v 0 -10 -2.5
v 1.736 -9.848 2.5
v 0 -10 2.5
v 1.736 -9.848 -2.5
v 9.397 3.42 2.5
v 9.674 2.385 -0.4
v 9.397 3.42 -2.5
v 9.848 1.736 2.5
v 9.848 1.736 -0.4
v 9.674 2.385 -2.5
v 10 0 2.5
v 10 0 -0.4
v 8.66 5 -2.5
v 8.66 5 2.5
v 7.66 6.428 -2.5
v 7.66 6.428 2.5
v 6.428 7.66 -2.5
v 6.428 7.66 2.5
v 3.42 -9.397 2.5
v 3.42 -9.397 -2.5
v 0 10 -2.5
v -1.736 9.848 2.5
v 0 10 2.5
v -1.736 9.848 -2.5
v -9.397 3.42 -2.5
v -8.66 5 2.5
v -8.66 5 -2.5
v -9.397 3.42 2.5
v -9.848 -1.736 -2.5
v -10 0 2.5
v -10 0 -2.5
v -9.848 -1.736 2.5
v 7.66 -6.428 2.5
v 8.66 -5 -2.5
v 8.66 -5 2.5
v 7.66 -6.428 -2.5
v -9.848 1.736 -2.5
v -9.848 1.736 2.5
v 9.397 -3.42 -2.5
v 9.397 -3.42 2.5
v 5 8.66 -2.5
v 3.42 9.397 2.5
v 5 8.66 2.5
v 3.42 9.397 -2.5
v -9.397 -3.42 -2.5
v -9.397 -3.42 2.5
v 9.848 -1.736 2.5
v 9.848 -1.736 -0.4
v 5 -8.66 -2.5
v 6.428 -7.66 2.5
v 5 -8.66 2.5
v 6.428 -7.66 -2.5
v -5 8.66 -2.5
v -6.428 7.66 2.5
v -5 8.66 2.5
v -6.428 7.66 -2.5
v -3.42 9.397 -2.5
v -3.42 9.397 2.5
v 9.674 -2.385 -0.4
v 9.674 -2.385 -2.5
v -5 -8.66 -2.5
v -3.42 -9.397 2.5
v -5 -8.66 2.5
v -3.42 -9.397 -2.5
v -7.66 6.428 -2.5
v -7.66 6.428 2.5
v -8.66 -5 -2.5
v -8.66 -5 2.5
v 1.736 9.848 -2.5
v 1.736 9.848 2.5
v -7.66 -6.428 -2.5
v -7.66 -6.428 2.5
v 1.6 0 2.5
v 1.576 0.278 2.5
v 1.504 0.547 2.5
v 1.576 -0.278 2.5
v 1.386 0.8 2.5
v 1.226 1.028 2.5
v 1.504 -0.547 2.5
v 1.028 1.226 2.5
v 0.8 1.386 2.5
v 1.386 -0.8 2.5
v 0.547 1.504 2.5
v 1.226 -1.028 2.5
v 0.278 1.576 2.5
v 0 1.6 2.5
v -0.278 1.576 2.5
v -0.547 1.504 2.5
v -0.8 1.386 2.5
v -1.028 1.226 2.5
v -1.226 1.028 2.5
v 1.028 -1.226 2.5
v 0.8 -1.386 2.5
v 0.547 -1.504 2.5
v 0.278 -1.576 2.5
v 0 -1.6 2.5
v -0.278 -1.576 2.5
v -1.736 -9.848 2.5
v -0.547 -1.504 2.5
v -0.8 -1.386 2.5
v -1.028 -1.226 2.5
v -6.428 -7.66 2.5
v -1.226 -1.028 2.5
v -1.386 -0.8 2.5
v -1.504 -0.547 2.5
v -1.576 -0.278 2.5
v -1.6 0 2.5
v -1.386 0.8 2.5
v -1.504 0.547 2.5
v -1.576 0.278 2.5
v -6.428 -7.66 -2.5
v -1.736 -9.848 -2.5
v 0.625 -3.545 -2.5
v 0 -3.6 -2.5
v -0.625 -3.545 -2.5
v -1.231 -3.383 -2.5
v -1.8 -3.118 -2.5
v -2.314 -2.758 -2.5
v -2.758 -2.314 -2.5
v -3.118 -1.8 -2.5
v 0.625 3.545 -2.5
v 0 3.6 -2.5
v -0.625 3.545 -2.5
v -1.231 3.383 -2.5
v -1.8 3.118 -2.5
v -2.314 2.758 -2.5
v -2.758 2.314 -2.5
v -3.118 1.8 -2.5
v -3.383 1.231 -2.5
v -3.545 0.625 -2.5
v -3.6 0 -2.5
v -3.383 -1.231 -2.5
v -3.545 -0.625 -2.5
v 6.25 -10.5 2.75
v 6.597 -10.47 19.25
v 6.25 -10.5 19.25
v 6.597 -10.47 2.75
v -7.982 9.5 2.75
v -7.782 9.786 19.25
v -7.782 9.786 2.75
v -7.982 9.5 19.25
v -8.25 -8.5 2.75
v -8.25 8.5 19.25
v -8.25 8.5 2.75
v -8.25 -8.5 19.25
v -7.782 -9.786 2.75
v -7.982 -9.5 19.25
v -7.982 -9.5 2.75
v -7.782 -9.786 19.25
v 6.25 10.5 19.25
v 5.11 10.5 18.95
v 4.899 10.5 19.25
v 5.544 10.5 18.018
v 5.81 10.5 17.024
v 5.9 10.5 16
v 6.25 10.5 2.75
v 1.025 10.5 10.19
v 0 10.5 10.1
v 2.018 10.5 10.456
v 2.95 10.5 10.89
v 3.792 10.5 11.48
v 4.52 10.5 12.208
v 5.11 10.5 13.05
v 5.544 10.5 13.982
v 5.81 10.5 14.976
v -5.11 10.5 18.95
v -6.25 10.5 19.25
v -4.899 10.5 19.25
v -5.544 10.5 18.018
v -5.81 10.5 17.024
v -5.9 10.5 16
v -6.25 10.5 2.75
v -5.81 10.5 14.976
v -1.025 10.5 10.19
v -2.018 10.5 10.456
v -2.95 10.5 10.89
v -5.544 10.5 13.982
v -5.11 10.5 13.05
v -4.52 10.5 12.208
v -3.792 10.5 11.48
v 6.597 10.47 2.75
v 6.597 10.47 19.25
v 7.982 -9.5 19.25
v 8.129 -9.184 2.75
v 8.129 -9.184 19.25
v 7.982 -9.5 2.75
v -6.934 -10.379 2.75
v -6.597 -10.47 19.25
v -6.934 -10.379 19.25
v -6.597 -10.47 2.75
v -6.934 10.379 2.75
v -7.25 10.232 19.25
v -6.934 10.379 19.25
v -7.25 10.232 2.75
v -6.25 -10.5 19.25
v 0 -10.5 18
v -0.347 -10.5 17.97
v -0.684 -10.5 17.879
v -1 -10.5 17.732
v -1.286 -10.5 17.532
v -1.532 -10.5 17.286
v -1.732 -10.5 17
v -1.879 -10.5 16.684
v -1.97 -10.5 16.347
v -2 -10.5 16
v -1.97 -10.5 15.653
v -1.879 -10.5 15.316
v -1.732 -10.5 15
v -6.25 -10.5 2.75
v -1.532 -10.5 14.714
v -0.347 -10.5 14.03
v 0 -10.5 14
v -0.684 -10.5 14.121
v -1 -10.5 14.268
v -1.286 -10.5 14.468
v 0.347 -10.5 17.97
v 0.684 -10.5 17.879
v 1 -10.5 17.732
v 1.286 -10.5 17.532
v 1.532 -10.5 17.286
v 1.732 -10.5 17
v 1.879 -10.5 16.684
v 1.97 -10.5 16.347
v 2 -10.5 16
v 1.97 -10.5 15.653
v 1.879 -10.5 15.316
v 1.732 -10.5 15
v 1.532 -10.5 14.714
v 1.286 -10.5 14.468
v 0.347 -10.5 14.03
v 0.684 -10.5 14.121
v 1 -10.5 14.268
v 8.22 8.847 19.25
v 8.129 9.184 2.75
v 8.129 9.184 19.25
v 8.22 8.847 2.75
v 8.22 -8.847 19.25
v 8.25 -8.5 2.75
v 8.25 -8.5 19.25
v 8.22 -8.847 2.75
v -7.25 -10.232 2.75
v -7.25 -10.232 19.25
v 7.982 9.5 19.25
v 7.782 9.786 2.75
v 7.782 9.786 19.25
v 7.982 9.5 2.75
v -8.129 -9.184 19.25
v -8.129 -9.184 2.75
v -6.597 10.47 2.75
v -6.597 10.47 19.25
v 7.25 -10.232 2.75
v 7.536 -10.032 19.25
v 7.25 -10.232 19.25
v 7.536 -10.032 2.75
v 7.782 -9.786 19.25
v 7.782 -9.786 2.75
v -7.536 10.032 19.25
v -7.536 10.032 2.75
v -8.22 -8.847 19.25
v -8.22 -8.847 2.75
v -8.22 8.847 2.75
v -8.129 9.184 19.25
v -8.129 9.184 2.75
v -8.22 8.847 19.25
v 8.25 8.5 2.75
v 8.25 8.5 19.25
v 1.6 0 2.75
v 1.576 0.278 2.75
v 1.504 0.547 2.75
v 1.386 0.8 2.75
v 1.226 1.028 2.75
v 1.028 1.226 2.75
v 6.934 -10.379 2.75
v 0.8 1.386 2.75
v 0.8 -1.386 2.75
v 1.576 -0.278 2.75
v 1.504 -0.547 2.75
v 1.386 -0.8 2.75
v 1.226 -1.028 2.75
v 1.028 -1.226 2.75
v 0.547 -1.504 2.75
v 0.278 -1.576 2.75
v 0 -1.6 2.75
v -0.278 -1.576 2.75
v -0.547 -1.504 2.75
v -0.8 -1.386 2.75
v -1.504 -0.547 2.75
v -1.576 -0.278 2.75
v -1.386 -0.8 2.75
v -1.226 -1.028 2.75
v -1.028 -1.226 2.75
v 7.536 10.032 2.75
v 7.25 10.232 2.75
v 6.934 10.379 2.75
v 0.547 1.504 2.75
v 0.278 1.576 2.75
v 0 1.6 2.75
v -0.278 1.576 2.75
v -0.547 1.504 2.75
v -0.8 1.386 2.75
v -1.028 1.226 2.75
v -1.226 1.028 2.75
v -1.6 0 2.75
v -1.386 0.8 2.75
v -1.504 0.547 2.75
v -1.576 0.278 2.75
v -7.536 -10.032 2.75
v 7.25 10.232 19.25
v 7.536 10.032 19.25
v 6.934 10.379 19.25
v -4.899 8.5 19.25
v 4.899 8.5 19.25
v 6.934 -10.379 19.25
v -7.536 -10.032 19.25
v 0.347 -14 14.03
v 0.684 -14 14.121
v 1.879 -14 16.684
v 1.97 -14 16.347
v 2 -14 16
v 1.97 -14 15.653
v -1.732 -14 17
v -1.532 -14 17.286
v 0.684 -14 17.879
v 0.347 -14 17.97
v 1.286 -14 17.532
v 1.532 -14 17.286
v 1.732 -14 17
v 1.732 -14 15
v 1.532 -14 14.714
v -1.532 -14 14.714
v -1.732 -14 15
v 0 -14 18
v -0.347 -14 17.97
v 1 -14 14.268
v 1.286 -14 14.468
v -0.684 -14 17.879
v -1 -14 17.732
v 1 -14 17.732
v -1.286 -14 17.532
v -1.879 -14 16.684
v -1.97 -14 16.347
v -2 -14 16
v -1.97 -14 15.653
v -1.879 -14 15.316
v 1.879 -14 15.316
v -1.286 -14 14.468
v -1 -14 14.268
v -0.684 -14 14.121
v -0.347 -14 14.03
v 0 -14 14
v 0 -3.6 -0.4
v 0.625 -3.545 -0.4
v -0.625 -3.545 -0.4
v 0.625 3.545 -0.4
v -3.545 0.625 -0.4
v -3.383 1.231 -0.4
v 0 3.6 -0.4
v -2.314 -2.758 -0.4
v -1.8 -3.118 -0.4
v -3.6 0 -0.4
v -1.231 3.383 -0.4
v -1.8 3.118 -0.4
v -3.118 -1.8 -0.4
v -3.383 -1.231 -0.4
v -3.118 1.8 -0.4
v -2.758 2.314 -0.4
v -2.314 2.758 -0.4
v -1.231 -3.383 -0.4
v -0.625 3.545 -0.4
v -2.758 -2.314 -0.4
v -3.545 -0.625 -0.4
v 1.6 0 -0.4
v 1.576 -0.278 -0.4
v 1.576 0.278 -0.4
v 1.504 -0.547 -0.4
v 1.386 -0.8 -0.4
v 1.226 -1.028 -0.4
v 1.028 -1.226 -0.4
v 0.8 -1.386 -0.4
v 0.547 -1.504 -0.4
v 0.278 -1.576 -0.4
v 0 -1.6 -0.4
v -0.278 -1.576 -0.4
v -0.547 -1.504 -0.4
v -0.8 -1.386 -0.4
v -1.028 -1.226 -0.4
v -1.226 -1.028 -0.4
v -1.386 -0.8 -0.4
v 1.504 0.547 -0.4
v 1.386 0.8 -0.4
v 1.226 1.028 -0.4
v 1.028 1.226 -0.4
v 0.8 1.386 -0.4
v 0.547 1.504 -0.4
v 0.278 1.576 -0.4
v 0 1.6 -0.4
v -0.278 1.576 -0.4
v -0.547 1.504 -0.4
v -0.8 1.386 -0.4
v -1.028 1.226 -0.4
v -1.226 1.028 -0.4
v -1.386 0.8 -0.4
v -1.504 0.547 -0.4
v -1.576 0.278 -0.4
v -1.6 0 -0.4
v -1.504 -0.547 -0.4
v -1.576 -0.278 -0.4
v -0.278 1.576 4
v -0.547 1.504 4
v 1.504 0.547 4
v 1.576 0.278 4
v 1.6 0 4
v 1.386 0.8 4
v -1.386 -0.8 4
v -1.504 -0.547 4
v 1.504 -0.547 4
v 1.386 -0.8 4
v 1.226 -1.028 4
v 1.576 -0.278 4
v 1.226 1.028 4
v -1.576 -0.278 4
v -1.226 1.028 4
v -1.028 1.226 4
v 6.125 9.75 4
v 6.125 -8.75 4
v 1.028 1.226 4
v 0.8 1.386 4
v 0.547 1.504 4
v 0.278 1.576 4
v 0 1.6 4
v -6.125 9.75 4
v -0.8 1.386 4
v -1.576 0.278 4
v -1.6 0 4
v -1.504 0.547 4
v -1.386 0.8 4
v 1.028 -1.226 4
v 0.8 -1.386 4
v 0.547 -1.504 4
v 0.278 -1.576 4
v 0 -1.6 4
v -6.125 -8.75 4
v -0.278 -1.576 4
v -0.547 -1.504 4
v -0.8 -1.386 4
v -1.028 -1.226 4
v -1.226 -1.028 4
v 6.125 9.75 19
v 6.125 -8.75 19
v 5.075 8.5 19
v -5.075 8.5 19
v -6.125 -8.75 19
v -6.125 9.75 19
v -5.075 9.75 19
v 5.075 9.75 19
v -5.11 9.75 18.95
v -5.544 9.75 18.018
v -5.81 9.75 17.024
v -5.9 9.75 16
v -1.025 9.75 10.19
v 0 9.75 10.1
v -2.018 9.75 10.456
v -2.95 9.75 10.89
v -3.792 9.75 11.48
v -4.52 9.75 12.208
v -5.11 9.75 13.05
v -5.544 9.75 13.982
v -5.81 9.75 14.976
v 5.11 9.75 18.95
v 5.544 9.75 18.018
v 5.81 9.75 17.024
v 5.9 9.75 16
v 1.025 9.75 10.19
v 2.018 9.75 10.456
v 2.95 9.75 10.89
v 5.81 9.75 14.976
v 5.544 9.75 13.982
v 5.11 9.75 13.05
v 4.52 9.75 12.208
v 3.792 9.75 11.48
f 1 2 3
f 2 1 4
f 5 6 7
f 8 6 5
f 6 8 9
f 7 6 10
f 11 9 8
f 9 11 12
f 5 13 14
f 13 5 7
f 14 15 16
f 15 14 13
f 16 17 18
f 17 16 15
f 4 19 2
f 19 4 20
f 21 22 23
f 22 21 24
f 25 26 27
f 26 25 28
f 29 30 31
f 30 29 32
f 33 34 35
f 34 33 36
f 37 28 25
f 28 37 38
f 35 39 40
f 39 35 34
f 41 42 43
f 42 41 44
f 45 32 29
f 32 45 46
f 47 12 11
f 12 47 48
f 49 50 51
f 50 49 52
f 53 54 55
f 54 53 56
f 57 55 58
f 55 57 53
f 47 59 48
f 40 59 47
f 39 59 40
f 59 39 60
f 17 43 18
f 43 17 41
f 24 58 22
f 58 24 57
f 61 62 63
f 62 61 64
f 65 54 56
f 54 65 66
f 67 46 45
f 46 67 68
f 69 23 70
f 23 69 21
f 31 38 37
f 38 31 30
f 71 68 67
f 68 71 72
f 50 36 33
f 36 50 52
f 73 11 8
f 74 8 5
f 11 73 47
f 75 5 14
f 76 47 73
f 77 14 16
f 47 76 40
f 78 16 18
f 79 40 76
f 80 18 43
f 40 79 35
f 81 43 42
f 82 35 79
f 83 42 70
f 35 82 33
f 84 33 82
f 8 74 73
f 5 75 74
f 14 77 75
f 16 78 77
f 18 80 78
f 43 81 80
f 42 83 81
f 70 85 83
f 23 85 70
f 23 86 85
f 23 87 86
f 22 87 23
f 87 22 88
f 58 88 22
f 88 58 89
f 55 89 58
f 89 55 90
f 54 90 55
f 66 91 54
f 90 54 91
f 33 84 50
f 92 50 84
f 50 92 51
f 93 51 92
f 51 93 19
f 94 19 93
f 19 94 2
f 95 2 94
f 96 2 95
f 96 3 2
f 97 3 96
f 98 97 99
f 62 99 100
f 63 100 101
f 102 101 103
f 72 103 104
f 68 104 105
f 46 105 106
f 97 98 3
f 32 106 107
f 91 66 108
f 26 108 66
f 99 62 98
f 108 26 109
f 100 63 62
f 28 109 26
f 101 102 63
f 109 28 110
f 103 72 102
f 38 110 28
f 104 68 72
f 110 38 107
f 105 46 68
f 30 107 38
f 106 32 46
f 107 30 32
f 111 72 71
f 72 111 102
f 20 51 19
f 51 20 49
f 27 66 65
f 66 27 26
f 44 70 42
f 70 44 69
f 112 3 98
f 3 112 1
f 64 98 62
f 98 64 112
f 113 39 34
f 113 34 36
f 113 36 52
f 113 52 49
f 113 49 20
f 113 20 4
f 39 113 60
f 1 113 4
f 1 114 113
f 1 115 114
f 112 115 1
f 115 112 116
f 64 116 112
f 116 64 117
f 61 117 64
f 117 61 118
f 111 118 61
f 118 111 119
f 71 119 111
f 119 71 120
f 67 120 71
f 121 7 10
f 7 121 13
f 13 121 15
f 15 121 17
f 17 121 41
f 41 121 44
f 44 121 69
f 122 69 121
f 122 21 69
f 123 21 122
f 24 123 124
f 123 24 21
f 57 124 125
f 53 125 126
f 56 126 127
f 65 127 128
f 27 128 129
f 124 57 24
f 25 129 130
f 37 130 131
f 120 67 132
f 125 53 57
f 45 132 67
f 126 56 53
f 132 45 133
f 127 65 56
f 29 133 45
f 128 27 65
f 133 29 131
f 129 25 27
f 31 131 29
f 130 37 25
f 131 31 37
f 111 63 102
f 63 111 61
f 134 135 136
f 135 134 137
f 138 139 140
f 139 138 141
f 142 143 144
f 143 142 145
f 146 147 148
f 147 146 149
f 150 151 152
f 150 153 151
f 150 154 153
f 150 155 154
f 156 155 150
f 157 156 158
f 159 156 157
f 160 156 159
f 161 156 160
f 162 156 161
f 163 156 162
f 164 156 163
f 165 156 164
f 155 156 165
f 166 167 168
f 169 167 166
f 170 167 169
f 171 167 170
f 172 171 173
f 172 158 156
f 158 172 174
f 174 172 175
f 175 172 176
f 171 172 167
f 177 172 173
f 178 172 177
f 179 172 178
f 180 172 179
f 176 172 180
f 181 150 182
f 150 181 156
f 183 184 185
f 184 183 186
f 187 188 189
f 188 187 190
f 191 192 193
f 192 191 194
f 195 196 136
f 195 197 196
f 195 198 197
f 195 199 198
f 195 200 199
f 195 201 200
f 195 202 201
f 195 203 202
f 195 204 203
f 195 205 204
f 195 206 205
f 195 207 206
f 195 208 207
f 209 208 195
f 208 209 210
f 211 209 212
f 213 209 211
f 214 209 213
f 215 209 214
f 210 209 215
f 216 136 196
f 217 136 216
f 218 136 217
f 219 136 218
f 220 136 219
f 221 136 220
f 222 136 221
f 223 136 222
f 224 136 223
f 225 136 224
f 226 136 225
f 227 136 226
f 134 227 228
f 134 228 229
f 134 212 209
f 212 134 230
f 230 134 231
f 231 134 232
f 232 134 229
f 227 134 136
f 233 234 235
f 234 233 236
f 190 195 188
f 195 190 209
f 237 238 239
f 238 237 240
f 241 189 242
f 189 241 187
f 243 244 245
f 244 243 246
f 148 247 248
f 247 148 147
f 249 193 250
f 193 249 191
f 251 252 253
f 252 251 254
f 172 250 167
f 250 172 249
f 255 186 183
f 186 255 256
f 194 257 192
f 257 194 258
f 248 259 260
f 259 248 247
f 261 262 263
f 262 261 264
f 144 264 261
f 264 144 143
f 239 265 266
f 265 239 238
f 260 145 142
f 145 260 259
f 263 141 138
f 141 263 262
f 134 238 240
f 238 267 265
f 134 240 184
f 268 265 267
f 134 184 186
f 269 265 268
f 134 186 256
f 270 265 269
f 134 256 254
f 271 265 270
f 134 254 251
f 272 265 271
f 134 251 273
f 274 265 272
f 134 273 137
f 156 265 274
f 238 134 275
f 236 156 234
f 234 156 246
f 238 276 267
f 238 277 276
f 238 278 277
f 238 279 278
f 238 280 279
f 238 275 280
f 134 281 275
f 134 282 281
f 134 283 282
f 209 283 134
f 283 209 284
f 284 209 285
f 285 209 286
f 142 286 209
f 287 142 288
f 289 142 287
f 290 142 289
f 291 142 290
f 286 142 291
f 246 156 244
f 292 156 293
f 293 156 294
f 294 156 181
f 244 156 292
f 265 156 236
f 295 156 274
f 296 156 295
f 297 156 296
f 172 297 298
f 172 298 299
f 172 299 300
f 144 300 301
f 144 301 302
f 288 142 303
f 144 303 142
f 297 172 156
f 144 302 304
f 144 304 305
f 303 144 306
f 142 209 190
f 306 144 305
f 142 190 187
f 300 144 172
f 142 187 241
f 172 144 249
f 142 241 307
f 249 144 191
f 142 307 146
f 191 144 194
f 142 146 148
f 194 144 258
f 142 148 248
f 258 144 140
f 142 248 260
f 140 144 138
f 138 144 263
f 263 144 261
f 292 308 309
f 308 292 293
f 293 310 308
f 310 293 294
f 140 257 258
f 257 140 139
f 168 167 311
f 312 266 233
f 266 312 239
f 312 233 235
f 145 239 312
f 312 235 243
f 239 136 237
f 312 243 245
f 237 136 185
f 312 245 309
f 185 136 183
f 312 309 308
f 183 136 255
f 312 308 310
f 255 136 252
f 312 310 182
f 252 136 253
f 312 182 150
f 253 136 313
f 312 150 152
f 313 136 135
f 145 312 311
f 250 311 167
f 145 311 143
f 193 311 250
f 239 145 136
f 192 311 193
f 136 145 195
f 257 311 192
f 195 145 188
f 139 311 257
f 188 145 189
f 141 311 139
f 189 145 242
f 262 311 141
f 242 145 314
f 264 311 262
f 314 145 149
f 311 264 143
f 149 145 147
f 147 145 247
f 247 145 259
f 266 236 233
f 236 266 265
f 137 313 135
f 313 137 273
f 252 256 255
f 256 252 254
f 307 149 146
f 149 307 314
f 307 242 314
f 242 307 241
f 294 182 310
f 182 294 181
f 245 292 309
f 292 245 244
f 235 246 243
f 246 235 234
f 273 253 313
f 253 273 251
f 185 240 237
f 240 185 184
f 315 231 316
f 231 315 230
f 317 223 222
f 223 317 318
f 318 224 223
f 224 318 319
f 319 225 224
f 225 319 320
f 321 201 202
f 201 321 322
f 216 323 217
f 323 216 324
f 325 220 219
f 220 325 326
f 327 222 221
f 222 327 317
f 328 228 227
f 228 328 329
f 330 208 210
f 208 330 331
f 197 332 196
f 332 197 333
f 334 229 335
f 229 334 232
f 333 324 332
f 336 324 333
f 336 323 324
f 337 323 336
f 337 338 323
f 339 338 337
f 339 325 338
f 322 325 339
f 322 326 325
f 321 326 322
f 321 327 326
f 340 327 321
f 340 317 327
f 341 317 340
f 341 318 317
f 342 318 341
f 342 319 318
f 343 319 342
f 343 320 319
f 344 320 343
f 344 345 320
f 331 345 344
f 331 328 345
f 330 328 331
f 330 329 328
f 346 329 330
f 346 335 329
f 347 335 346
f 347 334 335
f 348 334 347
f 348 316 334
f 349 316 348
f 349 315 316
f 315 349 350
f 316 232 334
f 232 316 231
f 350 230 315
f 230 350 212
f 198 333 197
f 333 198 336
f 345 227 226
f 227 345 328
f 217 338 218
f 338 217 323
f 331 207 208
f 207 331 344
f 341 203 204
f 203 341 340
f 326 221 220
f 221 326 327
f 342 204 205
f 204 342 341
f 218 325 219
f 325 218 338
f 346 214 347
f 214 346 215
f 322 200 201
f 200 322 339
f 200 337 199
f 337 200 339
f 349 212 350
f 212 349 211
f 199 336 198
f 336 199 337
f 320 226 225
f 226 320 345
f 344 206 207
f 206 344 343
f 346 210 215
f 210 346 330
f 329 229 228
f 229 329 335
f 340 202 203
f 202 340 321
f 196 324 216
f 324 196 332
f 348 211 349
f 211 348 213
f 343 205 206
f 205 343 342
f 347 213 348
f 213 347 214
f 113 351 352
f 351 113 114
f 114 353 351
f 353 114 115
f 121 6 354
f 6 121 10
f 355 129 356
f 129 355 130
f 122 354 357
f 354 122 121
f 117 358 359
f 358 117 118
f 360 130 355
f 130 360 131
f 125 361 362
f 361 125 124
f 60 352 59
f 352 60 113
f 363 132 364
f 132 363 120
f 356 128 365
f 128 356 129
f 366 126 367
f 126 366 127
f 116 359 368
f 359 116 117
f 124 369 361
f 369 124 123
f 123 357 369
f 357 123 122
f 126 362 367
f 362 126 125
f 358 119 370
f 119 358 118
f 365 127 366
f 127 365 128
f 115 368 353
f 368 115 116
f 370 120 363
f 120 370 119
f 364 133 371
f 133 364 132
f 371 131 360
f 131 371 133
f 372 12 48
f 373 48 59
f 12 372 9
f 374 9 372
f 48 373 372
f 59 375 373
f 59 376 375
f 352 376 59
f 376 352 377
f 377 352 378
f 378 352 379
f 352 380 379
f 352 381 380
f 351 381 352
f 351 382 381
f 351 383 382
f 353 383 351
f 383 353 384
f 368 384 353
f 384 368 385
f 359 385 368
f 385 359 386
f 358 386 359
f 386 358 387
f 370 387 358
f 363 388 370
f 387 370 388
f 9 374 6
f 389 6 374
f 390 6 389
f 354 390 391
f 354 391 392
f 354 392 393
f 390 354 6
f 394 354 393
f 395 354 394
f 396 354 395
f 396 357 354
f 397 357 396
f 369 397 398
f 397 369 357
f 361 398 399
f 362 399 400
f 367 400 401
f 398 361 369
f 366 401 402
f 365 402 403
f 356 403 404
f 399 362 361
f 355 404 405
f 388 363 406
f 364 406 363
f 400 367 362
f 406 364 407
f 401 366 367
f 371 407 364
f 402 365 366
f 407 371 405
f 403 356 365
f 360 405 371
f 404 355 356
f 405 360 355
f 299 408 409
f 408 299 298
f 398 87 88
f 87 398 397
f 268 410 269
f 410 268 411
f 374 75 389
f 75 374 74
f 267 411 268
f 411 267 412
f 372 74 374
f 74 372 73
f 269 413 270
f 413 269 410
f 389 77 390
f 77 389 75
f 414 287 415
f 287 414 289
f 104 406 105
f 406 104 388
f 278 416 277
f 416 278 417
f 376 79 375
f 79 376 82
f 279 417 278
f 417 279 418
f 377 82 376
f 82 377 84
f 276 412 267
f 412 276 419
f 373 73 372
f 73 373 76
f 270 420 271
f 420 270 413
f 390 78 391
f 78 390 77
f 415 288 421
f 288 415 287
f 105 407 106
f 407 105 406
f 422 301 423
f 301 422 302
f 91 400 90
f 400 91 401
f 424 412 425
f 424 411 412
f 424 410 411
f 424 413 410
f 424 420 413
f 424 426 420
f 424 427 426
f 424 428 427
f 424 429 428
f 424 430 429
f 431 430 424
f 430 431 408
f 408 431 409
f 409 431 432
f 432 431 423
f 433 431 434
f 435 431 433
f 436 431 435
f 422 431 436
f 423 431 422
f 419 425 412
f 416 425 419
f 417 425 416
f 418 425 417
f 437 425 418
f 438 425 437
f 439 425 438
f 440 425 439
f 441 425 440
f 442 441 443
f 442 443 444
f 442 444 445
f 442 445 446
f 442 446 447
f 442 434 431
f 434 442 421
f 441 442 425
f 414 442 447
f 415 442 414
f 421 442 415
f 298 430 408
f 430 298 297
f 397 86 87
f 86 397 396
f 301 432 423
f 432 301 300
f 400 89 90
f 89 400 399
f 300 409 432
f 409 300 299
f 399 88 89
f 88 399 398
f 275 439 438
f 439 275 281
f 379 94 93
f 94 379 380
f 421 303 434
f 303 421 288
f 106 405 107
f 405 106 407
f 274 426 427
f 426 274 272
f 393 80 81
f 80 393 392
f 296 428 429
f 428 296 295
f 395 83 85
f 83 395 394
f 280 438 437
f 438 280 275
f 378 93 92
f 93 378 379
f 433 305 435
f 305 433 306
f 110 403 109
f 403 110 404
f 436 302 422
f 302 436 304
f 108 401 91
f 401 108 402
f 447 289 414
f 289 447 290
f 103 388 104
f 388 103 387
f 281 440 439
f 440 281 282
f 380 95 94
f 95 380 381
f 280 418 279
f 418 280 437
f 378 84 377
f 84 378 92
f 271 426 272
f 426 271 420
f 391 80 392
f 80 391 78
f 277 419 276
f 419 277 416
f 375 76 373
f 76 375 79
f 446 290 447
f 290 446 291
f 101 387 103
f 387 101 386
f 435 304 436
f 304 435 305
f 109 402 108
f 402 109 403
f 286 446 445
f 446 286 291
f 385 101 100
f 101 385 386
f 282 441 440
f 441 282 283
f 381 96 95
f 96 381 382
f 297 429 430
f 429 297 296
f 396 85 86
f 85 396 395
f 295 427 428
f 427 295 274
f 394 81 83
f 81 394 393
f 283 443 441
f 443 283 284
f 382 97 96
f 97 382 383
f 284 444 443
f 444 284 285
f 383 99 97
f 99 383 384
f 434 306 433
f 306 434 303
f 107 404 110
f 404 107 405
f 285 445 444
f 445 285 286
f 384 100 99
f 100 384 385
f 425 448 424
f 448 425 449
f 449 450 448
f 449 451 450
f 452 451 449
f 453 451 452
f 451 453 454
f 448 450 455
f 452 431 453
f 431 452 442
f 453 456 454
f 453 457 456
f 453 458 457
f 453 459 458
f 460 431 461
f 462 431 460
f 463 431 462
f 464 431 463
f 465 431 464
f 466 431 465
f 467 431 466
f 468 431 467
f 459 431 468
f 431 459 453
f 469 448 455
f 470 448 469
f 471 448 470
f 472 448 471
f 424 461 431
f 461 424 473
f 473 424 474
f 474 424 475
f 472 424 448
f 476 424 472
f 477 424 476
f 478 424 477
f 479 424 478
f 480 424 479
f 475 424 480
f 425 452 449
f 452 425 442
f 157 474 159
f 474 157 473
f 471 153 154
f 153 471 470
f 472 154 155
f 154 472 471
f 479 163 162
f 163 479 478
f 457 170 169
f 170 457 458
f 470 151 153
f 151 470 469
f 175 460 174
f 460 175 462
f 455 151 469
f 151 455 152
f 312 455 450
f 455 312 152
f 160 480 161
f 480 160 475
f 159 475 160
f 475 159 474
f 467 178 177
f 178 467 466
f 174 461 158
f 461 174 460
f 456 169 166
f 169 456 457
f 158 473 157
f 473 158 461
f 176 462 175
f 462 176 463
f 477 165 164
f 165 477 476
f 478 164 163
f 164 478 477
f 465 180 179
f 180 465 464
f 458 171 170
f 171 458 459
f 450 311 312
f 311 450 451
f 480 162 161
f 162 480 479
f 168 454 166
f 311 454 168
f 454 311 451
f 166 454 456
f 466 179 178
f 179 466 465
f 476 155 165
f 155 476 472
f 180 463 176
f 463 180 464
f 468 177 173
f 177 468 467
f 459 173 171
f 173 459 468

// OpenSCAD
// file: ../rnv1_params.scad
// RNV1 (Robotic Neural Vector 1) - Master Parametric Mechanical Specification
// Units: millimeters (mm)
// Coordinate Frame: +X Forward, +Y Left, +Z Up (Standing Neutral Pose, Floor = Z=0)

$fn = 36;

// --- FDM 3D Print Engineering Tolerances (0.4mm nozzle, PETG / PLA+) ---
WALL_T       = 2.0;    // Primary structural wall thickness (>= 1.6mm requirement)
RIB_T        = 1.8;    // Structural stiffening rib thickness
CLEARANCE    = 0.25;   // Standard FDM press/slip fit clearance
M2_PILOT_D   = 1.75;   // M2 self-tapping pilot hole diameter
M2_CLEAR_D   = 2.3;    // M2 through clearance hole diameter
PIVOT_BOSS_D = 4.0;    // Dual-shear opposing coaxial pivot pin diameter

// --- MG90S Metal-Gear Micro Servo Envelope (TowerPro/Generic standard) ---
MG90S_L      = 22.8;   // Body length along flange axis
MG90S_W      = 12.2;   // Body width
MG90S_H      = 28.5;   // Total housing height (bottom to top gear dome)
MG90S_FLANGE_L = 32.2; // Mounting ear span
MG90S_HOLE_DX  = 27.6; // Mounting hole center-to-center
MG90S_SHAFT_OFF = 5.9; // Output shaft offset from end of 22.8mm body

// --- SG90 9g Micro Servo Envelope ---
SG90_L       = 22.5;
SG90_W       = 12.0;
SG90_H       = 22.5;

// --- Master Kinematic Skeleton Coordinates (mm, Z from Floor = 0) ---
SOLE_PAD_H   = 2.0;    // 2mm silicone anti-slip pad (1mm recessed)
FOOT_L       = 72.0;   // X: -32mm heel to +40mm toe
FOOT_HEEL_X  = -32.0;
FOOT_TOE_X   = 40.0;
FOOT_W       = 46.0;   // Y width per foot
FOOT_PLATE_H = 6.5;    // Rigid foot sole plate thickness

FOOT_Y_CTR   = 26.0;   // Left=+26mm, Right=-26mm (6mm gap between inner edges!)
HIP_ROLL_Y   = 23.0;   // Left=+23mm, Right=-23mm

Z_ANKLE_ROLL = 18.0;   // Ankle roll axis height
Z_KNEE_PITCH = 62.0;   // Knee pitch axis height  (L_shin = 44.0mm)
Z_HIP_PITCH  = 106.0;  // Hip pitch axis height   (L_thigh = 44.0mm)
Z_HIP_ROLL   = 124.0;  // Hip roll axis height    (dZ = 18.0mm)

L_SHIN       = Z_KNEE_PITCH - Z_ANKLE_ROLL; // 44.0 mm
L_THIGH      = Z_HIP_PITCH - Z_KNEE_PITCH;  // 44.0 mm
L_HIP_CLEVIS = Z_HIP_ROLL - Z_HIP_PITCH;    // 18.0 mm

// --- Torso & Pelvis Envelope ---
TORSO_Z_BOT  = 116.0;
TORSO_Z_TOP  = 184.0;
TORSO_H      = TORSO_Z_TOP - TORSO_Z_BOT;   // 68.0 mm
TORSO_W      = 80.0;   // Y: -40 to +40mm
TORSO_D      = 54.0;   // X: -27 to +27mm

// --- Arms ---
SHOULDER_Y   = 46.0;   // Left=+46mm, Right=-46mm
SHOULDER_Z   = 170.0;
ARM_LEN      = 72.0;   // Shoulder to palm tip

// --- 2-DOF Active Spatial Head ---
Z_HEAD_YAW   = 188.0;  // Pan axis Z
Z_HEAD_PITCH = 204.0;  // Tilt axis Z
HEAD_W       = 58.0;   // Y width
HEAD_D       = 44.0;   // X depth
HEAD_H       = 42.0;   // Z height (Z = 196..238mm -> Total Robot Height = 238mm)
HEAD_Z_CTR   = 217.0;

// --- Utility Rounded Box Module ---
module rbox(size, r=2.0, center=true) {
    sx = size[0]; sy = size[1]; sz = size[2];
    rc = min(r, sx/2 - 0.1, sy/2 - 0.1, sz/2 - 0.1);
    translate(center ? [0,0,0] : [sx/2, sy/2, sz/2])
    hull() {
        for (dx = [-sx/2 + rc, sx/2 - rc])
        for (dy = [-sy/2 + rc, sy/2 - rc])
        for (dz = [-sz/2 + rc, sz/2 - rc])
            translate([dx, dy, dz]) sphere(r=rc, $fn=16);
    }
}

module rbox_xy(size, r=2.5, center=true) {
    sx = size[0]; sy = size[1]; sz = size[2];
    rc = min(r, sx/2 - 0.1, sy/2 - 0.1);
    translate(center ? [0,0,0] : [sx/2, sy/2, sz/2])
    linear_extrude(height=sz, center=true)
    offset(r=rc) offset(r=-rc)
        square([sx, sy], center=true);
}
// main file
// RNV1 Part: 2-DOF Pan/Tilt Neck Gimbal Yoke
// Local Origin: Head Yaw axis at (0, 0, 0) [Z=188mm], Head Pitch axis at (0, 0, 16mm) [Z=204mm]
include <../rnv1_params.scad>

module neck_gimbal() {
    difference() {
        union() {
            // Circular Yaw Turntable Hub (connects to Torso Neck SG90 horn)
            cylinder(d=20.0, h=5.0, center=true);

            // Tilt SG90 Mounting Cradle (Z = +2.5 to +19mm)
            translate([0, 0, 11.0])
                rbox_xy([16.5, 21.0, 16.5], r=2.0, center=true);

            // Opposing Dual-Shear Tilt Pivot Boss on -Y side at Z = +16mm
            translate([0, -10.5, 16.0])
                rotate([90, 0, 0])
                    cylinder(d=PIVOT_BOSS_D, h=3.5);
        }

        // Bottom Yaw SG90 Horn Recess
        translate([0, 0, -1.6])
            hull() {
                cylinder(d=7.2, h=2.4, center=true);
                translate([11.0, 0, 0]) cylinder(d=4.4, h=2.4, center=true);
            }
        cylinder(d=3.2, h=8.0, center=true);

        // Head Tilt SG90 Servo Cavity (shaft pointing +Y at Z=+16mm)
        translate([0, 0.5, 11.5])
            cube([SG90_W + CLEARANCE, 18.5, 15.0], center=true);
        translate([0, 10.5, 16.0])
            rotate([90, 0, 0])
                cylinder(d=11.8, h=4.0, center=true);
    }
}

neck_gimbal();
